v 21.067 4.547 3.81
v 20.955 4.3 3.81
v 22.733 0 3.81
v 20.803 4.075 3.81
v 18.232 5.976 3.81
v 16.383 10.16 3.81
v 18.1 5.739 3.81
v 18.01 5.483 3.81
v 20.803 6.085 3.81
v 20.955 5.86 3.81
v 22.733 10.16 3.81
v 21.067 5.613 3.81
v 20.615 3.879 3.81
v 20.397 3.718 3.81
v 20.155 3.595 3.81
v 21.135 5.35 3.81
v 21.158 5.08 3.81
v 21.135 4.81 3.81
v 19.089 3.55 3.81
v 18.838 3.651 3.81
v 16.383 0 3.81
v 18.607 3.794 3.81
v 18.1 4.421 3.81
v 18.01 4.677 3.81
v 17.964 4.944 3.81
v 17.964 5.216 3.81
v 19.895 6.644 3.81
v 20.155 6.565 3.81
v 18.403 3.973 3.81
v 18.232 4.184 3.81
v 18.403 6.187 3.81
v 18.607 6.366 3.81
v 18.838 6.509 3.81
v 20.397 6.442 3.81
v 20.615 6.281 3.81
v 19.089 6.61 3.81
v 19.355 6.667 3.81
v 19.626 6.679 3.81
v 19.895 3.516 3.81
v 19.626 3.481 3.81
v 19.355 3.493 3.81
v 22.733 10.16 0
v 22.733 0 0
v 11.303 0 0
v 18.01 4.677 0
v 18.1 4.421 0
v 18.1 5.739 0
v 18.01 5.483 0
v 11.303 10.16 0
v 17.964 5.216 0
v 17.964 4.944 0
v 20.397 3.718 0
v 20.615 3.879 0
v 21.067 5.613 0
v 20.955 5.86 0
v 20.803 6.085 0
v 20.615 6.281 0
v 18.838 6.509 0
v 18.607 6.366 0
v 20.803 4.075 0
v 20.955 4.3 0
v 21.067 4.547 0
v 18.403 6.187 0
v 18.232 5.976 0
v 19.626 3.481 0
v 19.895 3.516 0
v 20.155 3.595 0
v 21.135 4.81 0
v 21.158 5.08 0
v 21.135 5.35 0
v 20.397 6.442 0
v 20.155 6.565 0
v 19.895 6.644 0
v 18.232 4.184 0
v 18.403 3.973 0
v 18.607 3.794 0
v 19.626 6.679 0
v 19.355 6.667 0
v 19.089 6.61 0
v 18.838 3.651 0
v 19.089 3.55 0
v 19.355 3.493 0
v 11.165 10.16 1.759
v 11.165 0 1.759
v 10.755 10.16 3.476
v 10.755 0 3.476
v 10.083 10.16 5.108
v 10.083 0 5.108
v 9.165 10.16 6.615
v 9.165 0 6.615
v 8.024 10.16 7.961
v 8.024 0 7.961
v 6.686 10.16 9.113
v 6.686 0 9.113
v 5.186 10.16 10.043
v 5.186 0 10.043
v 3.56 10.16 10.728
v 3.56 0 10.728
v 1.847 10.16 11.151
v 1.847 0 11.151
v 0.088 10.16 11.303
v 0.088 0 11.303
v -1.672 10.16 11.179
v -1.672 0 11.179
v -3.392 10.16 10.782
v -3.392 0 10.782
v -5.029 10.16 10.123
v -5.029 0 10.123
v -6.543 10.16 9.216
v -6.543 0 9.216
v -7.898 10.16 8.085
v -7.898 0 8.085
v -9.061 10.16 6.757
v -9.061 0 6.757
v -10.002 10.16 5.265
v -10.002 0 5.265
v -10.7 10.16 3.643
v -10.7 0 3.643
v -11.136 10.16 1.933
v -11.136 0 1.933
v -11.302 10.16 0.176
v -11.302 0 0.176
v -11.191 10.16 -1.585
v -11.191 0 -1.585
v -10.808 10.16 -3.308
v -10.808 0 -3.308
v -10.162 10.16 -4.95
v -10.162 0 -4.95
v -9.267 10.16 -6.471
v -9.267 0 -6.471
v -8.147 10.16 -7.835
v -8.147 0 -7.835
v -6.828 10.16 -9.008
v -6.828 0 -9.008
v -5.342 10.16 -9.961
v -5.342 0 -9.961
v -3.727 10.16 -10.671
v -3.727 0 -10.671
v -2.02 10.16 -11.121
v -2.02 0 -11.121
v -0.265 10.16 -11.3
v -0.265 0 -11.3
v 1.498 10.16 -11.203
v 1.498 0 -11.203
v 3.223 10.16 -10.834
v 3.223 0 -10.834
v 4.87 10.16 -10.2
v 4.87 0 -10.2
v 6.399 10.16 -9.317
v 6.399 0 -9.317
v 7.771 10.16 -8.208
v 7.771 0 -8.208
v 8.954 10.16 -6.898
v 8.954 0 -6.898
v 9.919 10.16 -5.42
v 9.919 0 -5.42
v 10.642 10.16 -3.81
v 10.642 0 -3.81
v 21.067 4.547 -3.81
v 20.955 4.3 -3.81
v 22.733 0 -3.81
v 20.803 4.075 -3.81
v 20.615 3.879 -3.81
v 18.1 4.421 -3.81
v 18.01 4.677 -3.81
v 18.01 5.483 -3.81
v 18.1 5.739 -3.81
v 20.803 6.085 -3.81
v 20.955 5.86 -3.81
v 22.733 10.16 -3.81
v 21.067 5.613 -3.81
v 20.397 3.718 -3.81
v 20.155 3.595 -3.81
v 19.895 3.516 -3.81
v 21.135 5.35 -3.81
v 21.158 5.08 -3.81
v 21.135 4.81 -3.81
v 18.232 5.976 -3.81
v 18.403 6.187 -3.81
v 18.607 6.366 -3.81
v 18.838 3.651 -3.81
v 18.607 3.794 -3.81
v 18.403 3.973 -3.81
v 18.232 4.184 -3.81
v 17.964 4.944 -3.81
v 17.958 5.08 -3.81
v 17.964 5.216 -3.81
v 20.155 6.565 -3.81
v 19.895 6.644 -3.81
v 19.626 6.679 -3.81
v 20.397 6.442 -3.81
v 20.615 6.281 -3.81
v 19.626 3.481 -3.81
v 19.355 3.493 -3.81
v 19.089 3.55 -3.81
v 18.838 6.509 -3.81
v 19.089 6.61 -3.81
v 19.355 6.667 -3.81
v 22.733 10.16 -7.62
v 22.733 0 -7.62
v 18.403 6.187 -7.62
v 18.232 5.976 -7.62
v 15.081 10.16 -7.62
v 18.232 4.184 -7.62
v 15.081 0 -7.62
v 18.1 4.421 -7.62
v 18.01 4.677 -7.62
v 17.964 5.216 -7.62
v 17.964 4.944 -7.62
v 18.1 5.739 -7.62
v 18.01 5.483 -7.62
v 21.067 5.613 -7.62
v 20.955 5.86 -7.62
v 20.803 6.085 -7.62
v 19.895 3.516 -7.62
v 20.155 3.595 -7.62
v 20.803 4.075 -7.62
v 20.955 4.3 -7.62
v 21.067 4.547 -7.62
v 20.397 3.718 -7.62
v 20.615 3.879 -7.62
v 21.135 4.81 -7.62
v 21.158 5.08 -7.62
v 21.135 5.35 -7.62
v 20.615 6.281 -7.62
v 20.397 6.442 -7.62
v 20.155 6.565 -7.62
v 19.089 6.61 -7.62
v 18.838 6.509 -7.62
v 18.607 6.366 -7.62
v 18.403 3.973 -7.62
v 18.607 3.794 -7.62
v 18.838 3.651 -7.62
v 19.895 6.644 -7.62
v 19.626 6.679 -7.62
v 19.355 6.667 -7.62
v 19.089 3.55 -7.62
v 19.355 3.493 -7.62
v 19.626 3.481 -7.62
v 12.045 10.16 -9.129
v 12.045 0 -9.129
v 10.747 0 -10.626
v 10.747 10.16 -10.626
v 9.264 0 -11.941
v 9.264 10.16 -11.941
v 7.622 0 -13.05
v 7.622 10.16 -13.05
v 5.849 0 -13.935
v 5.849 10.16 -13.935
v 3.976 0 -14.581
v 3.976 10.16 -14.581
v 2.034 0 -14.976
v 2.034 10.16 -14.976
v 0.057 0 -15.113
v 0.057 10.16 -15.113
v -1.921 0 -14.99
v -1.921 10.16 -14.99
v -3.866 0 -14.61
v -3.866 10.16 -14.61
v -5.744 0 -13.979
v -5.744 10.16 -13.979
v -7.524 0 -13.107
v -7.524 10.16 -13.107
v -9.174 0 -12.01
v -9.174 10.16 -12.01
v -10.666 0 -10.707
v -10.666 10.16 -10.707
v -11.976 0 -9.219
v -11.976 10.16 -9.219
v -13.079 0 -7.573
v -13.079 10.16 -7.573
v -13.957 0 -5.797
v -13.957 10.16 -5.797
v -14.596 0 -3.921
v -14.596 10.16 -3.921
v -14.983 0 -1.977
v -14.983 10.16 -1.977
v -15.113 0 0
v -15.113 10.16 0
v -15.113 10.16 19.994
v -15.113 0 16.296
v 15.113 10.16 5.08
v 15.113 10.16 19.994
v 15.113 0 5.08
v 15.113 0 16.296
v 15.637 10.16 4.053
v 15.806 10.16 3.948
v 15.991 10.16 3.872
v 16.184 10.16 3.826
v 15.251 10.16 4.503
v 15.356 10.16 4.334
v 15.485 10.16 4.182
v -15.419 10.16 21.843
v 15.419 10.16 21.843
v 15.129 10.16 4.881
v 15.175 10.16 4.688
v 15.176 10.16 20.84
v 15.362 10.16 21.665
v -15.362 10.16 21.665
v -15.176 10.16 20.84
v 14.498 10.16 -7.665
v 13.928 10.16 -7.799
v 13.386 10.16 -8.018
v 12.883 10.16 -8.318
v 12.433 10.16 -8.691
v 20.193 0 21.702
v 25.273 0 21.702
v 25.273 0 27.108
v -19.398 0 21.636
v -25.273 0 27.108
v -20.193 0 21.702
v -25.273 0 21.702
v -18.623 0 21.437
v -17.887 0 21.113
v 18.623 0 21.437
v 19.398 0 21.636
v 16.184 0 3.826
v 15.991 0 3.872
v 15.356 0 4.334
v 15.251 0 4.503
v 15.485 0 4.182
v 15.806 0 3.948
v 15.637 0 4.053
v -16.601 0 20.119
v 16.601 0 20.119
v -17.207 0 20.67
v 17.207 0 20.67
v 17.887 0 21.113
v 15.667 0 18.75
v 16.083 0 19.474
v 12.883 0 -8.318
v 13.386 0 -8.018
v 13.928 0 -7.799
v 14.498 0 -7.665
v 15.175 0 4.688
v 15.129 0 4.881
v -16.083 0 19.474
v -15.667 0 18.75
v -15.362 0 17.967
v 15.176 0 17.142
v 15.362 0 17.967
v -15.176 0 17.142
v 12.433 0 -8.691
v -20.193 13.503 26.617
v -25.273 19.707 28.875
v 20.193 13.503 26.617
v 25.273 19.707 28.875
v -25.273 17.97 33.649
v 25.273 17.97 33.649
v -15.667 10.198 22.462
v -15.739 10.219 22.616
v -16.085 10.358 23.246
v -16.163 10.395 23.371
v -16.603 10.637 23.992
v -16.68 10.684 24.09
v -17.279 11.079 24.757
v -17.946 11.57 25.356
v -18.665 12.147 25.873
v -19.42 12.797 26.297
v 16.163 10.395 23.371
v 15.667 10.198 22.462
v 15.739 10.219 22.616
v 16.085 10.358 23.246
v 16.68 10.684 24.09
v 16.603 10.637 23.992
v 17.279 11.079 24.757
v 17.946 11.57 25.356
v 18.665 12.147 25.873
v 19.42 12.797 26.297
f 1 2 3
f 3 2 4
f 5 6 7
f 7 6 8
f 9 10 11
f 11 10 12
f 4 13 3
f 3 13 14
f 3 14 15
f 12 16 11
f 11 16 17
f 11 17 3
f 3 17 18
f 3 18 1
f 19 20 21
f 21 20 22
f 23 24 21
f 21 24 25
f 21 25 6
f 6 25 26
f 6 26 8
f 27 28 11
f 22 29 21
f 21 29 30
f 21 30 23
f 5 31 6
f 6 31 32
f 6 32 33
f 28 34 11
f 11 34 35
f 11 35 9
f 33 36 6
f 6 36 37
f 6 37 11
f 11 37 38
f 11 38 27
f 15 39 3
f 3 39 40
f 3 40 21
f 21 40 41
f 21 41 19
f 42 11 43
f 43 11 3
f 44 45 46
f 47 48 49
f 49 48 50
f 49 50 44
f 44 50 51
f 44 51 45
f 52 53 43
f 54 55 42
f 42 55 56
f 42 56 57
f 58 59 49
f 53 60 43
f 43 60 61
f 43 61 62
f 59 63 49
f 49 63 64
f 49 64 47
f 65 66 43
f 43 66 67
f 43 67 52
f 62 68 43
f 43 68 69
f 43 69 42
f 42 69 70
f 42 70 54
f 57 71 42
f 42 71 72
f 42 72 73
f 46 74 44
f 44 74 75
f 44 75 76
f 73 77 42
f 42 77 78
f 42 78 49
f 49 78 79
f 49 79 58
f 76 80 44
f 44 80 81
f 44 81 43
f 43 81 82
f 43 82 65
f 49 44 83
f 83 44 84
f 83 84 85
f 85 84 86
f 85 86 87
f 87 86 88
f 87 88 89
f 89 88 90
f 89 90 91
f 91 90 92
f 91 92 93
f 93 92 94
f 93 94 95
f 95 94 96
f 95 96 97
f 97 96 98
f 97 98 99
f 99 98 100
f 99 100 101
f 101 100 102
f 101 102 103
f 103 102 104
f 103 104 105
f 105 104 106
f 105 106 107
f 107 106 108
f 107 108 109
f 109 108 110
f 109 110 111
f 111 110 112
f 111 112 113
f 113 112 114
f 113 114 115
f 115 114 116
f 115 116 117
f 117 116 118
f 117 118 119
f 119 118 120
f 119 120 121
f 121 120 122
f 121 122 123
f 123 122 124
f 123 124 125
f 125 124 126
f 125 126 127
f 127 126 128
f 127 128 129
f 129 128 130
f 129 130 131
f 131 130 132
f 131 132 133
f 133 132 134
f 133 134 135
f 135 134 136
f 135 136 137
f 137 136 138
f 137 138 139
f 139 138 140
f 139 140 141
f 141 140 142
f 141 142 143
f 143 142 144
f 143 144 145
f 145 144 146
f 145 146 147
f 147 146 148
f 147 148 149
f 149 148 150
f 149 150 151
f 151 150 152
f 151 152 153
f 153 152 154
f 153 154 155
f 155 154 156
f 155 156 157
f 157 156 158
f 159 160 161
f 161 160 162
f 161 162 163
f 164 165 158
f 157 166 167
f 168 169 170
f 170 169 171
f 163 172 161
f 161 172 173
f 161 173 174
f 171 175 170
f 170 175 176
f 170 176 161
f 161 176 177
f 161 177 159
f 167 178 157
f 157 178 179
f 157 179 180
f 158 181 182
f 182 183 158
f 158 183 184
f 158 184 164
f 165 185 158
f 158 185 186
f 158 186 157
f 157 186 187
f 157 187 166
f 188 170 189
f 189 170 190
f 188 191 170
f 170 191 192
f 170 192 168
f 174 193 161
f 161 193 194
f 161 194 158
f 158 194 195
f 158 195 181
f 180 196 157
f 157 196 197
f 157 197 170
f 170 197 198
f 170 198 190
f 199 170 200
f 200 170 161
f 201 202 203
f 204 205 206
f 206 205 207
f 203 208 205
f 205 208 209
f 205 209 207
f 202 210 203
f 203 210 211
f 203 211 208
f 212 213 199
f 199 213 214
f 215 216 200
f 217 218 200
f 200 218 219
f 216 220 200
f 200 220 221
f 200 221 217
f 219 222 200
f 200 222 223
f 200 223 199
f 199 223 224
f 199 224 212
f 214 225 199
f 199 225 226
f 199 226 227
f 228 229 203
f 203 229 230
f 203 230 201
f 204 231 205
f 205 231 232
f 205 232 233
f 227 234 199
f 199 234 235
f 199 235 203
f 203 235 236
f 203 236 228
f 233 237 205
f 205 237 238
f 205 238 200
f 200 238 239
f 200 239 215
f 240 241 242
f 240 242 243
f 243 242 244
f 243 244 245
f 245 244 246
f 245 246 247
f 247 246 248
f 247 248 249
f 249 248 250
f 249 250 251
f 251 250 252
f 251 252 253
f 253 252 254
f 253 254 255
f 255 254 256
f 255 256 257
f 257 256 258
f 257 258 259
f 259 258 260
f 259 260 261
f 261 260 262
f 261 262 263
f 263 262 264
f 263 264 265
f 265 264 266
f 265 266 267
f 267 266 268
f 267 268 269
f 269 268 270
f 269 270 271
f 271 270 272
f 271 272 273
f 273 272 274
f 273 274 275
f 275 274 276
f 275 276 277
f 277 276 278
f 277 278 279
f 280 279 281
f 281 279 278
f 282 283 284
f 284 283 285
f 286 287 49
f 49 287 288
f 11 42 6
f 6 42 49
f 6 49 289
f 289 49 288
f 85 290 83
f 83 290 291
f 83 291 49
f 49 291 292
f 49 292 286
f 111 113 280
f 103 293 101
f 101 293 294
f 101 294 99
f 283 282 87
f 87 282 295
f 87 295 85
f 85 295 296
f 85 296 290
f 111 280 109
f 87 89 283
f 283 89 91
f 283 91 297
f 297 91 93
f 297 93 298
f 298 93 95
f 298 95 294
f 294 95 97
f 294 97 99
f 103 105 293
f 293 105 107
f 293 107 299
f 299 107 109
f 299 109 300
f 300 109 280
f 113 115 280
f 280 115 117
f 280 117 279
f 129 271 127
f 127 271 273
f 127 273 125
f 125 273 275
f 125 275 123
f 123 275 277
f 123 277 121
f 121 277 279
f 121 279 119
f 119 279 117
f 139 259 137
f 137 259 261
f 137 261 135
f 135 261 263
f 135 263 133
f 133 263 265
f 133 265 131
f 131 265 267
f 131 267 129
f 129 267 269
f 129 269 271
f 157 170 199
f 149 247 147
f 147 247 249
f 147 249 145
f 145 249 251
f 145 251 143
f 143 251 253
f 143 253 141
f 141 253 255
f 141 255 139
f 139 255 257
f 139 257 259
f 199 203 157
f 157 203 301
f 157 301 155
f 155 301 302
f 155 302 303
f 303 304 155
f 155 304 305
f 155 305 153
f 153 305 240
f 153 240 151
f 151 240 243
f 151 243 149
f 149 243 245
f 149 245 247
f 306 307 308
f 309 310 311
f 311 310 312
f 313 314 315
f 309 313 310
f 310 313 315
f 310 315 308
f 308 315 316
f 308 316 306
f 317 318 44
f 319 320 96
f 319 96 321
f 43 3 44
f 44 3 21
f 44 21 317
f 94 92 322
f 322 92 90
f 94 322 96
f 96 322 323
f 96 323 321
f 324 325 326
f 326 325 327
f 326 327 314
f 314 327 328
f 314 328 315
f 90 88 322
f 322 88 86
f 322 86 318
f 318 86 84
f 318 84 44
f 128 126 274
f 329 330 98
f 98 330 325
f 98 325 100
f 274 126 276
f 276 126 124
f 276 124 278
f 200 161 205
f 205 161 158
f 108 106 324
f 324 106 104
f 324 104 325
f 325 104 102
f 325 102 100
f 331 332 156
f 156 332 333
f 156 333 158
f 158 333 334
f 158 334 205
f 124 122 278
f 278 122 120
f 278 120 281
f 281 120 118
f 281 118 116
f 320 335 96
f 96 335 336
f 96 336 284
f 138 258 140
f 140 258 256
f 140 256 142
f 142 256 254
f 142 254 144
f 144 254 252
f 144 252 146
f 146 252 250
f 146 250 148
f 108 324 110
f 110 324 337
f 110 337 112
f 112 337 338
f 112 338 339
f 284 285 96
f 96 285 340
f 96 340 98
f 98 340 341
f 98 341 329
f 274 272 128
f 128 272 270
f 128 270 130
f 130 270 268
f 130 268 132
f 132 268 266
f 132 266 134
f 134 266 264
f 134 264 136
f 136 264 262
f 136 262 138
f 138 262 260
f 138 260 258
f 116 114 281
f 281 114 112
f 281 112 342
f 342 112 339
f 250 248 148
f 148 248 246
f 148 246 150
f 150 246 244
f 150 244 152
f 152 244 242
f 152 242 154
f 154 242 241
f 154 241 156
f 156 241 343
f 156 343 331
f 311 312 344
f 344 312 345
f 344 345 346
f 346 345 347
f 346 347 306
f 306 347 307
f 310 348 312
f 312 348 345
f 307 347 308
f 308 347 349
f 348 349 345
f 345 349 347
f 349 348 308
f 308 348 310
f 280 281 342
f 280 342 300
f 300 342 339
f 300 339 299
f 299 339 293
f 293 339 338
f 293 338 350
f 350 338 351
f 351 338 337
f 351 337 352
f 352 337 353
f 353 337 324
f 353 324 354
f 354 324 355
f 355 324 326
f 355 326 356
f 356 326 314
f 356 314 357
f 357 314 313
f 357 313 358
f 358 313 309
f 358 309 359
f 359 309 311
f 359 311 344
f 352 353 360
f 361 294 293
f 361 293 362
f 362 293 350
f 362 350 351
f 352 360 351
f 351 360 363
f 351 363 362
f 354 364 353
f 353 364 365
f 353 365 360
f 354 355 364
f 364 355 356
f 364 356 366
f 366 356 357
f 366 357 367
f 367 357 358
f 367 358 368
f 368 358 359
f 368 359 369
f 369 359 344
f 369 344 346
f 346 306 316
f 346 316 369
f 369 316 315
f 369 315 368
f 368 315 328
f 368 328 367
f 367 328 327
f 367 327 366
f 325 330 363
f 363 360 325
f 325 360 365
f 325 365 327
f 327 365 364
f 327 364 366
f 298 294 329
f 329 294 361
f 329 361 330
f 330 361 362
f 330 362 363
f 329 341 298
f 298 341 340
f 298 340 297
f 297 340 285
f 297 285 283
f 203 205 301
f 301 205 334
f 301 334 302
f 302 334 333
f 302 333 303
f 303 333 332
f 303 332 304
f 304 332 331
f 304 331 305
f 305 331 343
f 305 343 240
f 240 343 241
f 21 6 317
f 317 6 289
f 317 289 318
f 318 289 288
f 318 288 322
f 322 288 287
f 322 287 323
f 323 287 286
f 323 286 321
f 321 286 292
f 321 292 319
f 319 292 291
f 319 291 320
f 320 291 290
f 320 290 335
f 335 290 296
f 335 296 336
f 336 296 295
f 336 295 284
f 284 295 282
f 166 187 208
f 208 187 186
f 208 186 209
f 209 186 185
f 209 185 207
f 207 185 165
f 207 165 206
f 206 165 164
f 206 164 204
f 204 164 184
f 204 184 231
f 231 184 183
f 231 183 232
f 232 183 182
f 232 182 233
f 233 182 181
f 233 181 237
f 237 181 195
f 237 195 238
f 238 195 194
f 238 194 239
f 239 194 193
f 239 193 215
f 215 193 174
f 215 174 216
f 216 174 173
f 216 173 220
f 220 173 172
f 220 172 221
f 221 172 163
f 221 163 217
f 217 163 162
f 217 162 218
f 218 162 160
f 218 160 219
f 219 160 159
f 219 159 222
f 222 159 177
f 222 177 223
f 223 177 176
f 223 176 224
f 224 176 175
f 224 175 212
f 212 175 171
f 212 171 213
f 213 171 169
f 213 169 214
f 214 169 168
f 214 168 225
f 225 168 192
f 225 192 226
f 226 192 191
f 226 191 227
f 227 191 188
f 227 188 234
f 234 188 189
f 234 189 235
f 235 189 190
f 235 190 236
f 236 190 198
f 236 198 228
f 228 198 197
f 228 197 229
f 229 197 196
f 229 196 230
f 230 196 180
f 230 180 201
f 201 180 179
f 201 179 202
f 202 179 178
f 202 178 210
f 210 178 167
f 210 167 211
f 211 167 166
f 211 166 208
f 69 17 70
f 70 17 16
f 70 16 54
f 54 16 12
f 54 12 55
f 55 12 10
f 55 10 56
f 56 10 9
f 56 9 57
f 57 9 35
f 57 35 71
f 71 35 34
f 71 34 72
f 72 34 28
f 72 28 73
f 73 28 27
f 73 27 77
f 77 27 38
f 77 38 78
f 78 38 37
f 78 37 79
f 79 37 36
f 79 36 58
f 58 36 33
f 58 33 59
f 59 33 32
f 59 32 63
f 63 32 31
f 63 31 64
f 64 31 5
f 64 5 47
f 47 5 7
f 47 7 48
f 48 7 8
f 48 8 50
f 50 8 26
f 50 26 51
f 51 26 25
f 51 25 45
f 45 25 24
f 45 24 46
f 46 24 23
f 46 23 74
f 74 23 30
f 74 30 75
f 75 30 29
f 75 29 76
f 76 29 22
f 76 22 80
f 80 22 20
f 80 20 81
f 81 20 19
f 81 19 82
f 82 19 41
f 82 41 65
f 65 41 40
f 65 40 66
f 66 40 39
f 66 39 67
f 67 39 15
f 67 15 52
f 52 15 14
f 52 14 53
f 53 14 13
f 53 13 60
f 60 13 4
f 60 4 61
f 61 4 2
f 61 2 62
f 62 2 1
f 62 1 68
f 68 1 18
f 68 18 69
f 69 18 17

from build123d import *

# Parameters (mm, degrees)
BOSS_EXTRUDE1_DEPTH = 10.16
CUT_EXTRUDE1_REACH  = 48.698
SKETCH3_W           = 50.546
SKETCH3_H           = 20.972046169
BOSS_EXTRUDE2_DEPTH = 5.08
CUT_EXTRUDE2_REACH  = 65.84
FILLET1_R           = 5.08
FILLET2_R           = 3.81
FILLET3_R           = 1.27
SKETCH5_R           = 1.5999968
CUT_EXTRUDE3_DEPTH  = 44.788596105


with BuildPart() as part:
    # Sketch1 → Boss-Extrude1 (new body)
    with BuildSketch(Plane(origin=(0, 0, 0), x_dir=(1, 0, 0), z_dir=(0, 1, 0))):
        with BuildLine():
            Line((-15.113, 0), (-15.113, -25.4))
            Line((-15.113, -25.4), (15.113, -25.4))
            Line((15.113, -25.4), (15.113, -3.81))
            Line((15.113, -3.81), (22.733, -3.81))
            Line((22.733, -3.81), (22.733, 0))
            Line((22.733, 0), (15.113, 0))
            Line((15.113, 0), (11.303, 0))
            ThreePointArc((11.303, 0), (-11.136399388, -1.933498813), (10.641508775, 3.81))
            Line((10.641508775, 3.81), (22.733, 3.81))
            Line((22.733, 3.81), (22.733, 7.62))
            Line((22.733, 7.62), (13.051374219, 7.62))
            ThreePointArc((13.051374219, 7.62), (-3.946983052, 14.588491827), (-15.113, 0))
        make_face()
    extrude(amount=BOSS_EXTRUDE1_DEPTH)

    # Sketch2 → Cut-Extrude1 (cut, up to next)
    with BuildSketch(Plane.ZY.offset(15.113), mode=Mode.PRIVATE) as cut_extrude1_sk1:
        Polygon((25.4, 10.16), (21.70206242, 0), (25.4, 0), align=None)
    cut_extrude1_tool1 = extrude(cut_extrude1_sk1.sketch, amount=-CUT_EXTRUDE1_REACH, mode=Mode.PRIVATE) & part.part
    add(cut_extrude1_tool1.solids().sort_by_distance((-15.113, 3.386667, 24.167354))[0], mode=Mode.SUBTRACT)

    # Sketch3 → Boss-Extrude2 (add)
    with BuildSketch(Plane(origin=(0, -6.974908414, 19.16340337), x_dir=(1, 0, 0), z_dir=(0, -0.34202014332566916, 0.9396926207859082))):
        with Locations((0, 17.908565583)):
            Rectangle(SKETCH3_W, SKETCH3_H)
    extrude(amount=BOSS_EXTRUDE2_DEPTH)

    # Sketch4 → Cut-Extrude2 (cut, up to next)
    with BuildSketch(Plane.ZY.offset(25.273), mode=Mode.PRIVATE) as cut_extrude2_sk1:
        Polygon((27.108085504, 0), (26.475700933, -1.737462328), (21.70206242, 0), align=None)
    cut_extrude2_tool1 = extrude(cut_extrude2_sk1.sketch, amount=-CUT_EXTRUDE2_REACH, mode=Mode.PRIVATE) & part.part
    add(cut_extrude2_tool1.solids().sort_by_distance((-25.273, -0.579154, 25.095283))[0], mode=Mode.SUBTRACT)

    # Fillet1
    fillet1_edges = [part.edges().sort_by_distance(p)[0] for p in [
        (-15.113, 5.08, 23.55103121),
        (15.113, 5.08, 23.55103121),
        (0, 10.16, 25.4),
    ]]
    fillet(fillet1_edges, radius=FILLET1_R)

    # Fillet2
    fillet2_edges = [part.edges().sort_by_distance(p)[0] for p in [
        (13.051374219, 5.08, -7.62),
    ]]
    fillet(fillet2_edges, radius=FILLET2_R)

    # Fillet3
    fillet3_edges = [part.edges().sort_by_distance(p)[0] for p in [
        (15.113, 5.08, 3.81),
    ]]
    fillet(fillet3_edges, radius=FILLET3_R)

    # Sketch5 → Cut-Extrude3 (cut, through all)
    with BuildSketch(Plane.XY.offset(3.81)):
        with Locations((19.558, 5.08)):
            Circle(SKETCH5_R)
    extrude(amount=-CUT_EXTRUDE3_DEPTH, mode=Mode.SUBTRACT)


solid = part.part
